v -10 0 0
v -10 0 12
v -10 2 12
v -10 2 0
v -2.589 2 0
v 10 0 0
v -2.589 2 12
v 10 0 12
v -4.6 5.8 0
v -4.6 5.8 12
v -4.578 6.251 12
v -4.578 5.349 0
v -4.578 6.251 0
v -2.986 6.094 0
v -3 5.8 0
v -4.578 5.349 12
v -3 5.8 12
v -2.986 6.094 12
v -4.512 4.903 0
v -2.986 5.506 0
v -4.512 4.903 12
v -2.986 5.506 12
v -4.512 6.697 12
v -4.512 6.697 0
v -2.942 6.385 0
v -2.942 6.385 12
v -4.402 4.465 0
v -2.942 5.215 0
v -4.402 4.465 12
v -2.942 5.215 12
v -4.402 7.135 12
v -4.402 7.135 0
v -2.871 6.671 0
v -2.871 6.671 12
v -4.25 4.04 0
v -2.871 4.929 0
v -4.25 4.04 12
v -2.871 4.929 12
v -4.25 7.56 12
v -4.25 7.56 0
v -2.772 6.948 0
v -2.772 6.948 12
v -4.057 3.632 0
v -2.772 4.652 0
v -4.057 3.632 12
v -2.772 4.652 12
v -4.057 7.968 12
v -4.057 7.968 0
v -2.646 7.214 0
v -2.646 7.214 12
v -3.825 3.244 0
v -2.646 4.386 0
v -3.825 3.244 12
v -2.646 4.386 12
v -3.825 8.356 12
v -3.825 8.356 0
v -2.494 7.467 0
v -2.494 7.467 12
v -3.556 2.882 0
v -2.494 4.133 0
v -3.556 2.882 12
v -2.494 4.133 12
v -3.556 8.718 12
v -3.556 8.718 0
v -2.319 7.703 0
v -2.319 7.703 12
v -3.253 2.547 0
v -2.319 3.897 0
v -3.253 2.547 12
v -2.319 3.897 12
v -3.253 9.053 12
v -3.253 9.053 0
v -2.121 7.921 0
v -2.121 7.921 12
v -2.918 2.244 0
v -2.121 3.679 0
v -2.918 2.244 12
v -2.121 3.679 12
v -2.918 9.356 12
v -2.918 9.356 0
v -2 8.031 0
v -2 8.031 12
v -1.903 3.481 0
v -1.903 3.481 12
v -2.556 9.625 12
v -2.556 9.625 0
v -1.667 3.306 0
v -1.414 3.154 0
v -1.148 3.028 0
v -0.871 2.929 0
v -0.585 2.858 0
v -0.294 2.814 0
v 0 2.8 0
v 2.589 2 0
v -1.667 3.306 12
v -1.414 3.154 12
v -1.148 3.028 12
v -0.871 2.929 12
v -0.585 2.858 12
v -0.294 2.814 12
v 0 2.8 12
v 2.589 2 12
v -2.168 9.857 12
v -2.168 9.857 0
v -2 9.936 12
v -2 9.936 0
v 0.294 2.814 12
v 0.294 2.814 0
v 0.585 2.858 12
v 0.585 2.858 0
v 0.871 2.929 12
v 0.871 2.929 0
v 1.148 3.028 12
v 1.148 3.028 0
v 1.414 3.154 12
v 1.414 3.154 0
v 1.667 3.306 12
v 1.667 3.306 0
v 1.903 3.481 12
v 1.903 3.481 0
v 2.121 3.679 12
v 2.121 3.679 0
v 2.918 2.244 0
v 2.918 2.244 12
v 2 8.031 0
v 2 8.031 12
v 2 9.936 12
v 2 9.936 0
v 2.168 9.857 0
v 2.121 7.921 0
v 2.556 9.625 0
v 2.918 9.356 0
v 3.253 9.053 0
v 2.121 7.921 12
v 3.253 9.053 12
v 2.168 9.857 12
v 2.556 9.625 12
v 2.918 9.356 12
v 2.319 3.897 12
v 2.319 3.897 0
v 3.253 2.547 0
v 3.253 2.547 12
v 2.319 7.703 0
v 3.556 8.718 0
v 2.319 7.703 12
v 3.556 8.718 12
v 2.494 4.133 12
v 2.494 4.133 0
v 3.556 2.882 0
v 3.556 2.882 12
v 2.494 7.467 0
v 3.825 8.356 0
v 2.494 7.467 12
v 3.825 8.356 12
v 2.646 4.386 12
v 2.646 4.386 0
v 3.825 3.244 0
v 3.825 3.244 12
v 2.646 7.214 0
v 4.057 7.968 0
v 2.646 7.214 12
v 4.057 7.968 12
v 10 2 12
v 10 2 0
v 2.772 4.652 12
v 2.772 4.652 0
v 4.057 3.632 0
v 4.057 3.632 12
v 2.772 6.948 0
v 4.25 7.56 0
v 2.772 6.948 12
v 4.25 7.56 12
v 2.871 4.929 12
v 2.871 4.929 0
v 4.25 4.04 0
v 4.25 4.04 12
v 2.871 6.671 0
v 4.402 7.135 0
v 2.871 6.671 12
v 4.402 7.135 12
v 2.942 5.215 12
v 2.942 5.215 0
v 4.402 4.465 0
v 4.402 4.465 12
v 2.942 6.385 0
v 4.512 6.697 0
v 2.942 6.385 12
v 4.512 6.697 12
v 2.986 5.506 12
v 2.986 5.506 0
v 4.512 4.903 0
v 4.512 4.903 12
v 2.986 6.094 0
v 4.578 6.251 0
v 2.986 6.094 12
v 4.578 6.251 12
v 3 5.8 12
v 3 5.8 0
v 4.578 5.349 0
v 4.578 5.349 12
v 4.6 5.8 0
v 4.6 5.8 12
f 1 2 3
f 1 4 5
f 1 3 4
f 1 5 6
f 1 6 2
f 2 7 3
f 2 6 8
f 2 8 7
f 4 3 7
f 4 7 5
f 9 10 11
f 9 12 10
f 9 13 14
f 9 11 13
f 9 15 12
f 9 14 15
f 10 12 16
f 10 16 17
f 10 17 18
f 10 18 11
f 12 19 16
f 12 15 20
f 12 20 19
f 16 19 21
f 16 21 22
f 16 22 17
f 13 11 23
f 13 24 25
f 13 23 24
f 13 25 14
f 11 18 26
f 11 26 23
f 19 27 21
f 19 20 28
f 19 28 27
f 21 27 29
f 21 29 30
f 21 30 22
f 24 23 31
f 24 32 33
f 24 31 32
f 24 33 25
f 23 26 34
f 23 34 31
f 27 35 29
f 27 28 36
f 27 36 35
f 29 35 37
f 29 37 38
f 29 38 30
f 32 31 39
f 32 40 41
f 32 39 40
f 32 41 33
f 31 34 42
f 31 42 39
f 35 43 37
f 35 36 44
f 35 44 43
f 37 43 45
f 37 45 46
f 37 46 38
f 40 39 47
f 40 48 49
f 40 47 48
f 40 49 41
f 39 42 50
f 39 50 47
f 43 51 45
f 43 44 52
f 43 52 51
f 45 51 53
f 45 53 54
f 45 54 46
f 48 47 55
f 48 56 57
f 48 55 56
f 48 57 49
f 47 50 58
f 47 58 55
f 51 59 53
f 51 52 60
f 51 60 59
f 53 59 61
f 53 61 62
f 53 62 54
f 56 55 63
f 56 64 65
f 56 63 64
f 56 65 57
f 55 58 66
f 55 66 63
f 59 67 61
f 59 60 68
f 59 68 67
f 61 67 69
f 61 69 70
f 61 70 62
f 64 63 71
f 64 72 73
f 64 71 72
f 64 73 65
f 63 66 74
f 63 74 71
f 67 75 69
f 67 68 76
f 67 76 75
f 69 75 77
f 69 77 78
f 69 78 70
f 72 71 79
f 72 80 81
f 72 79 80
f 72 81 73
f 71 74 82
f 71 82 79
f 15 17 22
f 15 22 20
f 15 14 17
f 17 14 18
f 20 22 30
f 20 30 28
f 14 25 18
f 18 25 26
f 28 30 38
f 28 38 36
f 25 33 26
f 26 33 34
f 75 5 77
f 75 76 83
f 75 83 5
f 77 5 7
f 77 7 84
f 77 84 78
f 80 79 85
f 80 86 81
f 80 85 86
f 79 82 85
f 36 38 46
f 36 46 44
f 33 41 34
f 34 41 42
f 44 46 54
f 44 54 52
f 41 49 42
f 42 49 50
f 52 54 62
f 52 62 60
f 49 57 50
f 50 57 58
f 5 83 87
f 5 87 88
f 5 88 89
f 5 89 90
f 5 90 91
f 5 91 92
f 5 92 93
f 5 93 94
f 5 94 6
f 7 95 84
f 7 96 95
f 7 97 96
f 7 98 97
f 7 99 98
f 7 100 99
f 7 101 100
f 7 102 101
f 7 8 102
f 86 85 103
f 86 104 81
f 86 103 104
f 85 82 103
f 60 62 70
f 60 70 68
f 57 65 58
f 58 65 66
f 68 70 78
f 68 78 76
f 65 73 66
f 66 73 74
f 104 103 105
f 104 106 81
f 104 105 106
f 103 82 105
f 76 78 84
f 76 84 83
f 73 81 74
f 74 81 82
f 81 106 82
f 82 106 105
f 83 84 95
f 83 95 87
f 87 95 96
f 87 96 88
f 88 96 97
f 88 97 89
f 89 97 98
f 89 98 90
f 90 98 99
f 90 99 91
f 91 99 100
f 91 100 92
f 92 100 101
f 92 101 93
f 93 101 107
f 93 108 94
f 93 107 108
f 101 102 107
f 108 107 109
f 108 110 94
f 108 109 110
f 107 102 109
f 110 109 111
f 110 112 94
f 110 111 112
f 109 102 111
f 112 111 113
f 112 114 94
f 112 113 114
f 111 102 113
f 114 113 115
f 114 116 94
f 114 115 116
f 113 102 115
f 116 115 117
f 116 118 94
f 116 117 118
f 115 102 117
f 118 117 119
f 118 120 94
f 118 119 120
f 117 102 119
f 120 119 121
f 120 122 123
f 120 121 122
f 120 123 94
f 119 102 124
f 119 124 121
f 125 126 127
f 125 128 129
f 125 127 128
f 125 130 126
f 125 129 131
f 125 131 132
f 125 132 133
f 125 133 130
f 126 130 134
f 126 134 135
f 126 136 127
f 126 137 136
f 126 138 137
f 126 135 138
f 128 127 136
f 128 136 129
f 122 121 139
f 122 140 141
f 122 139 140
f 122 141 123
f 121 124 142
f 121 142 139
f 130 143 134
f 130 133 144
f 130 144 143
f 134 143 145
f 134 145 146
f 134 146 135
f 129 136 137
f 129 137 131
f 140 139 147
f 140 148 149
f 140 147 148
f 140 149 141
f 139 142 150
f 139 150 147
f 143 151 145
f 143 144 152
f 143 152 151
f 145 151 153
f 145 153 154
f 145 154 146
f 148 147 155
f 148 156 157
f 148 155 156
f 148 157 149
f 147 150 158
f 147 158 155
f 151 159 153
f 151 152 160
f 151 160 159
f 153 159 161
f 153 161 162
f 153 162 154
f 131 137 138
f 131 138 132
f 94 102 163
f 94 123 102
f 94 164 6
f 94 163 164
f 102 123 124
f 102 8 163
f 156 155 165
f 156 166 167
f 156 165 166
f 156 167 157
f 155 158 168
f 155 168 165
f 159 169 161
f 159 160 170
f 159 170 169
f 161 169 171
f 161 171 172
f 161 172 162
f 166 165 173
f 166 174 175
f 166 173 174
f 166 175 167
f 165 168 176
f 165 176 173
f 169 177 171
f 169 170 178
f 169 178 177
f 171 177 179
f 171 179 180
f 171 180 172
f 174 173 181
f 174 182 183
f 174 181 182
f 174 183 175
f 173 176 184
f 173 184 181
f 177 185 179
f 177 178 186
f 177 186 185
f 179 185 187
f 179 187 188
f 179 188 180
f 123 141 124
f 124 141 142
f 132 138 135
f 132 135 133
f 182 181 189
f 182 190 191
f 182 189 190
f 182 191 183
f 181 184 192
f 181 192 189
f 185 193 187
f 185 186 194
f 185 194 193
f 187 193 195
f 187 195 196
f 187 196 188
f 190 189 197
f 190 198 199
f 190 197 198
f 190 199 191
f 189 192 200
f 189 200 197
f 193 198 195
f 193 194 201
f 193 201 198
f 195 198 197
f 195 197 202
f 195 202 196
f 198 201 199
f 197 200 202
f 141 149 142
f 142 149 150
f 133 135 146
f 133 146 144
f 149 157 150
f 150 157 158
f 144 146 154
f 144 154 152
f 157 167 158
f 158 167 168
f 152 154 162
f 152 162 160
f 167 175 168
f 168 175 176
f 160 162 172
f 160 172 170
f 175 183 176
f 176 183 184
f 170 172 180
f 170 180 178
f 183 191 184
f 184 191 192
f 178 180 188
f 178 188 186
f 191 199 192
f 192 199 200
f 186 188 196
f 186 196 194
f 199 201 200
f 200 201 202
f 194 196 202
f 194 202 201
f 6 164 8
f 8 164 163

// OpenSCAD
// Cable clip: a flat pad for tape or glue with an open ring that a cable snaps into.
// Drawn lying on its side, the way it should be printed, so the ring needs no supports.

// Cable diameter (mm)
cable_d = 6; // [3:0.5:12]
// Ring wall thickness (mm)
wall = 1.6; // [1.2:0.2:3]
// How much narrower the opening is than the cable (mm)
grip = 2; // [0.5:0.5:2.5]
// Clip length along the cable (mm)
length = 12; // [6:1:30]
// Pad width (mm)
pad_width = 20; // [10:1:40]
// Pad thickness (mm)
pad_thickness = 2; // [1.5:0.5:5]

/* [Hidden] */
$fn = 64;

outer_r = cable_d / 2 + wall;
// the opening is narrower than the cable, so the cable snaps in and stays in
slot = cable_d - grip;
ring_y = pad_thickness + outer_r - wall / 2;

module profile() {
  translate([-pad_width / 2, 0]) square([pad_width, pad_thickness]);
  difference() {
    translate([0, ring_y]) circle(r = outer_r);
    translate([0, ring_y]) circle(d = cable_d);
    translate([-slot / 2, ring_y]) square([slot, outer_r + 1]);
  }
}

linear_extrude(length) profile();
